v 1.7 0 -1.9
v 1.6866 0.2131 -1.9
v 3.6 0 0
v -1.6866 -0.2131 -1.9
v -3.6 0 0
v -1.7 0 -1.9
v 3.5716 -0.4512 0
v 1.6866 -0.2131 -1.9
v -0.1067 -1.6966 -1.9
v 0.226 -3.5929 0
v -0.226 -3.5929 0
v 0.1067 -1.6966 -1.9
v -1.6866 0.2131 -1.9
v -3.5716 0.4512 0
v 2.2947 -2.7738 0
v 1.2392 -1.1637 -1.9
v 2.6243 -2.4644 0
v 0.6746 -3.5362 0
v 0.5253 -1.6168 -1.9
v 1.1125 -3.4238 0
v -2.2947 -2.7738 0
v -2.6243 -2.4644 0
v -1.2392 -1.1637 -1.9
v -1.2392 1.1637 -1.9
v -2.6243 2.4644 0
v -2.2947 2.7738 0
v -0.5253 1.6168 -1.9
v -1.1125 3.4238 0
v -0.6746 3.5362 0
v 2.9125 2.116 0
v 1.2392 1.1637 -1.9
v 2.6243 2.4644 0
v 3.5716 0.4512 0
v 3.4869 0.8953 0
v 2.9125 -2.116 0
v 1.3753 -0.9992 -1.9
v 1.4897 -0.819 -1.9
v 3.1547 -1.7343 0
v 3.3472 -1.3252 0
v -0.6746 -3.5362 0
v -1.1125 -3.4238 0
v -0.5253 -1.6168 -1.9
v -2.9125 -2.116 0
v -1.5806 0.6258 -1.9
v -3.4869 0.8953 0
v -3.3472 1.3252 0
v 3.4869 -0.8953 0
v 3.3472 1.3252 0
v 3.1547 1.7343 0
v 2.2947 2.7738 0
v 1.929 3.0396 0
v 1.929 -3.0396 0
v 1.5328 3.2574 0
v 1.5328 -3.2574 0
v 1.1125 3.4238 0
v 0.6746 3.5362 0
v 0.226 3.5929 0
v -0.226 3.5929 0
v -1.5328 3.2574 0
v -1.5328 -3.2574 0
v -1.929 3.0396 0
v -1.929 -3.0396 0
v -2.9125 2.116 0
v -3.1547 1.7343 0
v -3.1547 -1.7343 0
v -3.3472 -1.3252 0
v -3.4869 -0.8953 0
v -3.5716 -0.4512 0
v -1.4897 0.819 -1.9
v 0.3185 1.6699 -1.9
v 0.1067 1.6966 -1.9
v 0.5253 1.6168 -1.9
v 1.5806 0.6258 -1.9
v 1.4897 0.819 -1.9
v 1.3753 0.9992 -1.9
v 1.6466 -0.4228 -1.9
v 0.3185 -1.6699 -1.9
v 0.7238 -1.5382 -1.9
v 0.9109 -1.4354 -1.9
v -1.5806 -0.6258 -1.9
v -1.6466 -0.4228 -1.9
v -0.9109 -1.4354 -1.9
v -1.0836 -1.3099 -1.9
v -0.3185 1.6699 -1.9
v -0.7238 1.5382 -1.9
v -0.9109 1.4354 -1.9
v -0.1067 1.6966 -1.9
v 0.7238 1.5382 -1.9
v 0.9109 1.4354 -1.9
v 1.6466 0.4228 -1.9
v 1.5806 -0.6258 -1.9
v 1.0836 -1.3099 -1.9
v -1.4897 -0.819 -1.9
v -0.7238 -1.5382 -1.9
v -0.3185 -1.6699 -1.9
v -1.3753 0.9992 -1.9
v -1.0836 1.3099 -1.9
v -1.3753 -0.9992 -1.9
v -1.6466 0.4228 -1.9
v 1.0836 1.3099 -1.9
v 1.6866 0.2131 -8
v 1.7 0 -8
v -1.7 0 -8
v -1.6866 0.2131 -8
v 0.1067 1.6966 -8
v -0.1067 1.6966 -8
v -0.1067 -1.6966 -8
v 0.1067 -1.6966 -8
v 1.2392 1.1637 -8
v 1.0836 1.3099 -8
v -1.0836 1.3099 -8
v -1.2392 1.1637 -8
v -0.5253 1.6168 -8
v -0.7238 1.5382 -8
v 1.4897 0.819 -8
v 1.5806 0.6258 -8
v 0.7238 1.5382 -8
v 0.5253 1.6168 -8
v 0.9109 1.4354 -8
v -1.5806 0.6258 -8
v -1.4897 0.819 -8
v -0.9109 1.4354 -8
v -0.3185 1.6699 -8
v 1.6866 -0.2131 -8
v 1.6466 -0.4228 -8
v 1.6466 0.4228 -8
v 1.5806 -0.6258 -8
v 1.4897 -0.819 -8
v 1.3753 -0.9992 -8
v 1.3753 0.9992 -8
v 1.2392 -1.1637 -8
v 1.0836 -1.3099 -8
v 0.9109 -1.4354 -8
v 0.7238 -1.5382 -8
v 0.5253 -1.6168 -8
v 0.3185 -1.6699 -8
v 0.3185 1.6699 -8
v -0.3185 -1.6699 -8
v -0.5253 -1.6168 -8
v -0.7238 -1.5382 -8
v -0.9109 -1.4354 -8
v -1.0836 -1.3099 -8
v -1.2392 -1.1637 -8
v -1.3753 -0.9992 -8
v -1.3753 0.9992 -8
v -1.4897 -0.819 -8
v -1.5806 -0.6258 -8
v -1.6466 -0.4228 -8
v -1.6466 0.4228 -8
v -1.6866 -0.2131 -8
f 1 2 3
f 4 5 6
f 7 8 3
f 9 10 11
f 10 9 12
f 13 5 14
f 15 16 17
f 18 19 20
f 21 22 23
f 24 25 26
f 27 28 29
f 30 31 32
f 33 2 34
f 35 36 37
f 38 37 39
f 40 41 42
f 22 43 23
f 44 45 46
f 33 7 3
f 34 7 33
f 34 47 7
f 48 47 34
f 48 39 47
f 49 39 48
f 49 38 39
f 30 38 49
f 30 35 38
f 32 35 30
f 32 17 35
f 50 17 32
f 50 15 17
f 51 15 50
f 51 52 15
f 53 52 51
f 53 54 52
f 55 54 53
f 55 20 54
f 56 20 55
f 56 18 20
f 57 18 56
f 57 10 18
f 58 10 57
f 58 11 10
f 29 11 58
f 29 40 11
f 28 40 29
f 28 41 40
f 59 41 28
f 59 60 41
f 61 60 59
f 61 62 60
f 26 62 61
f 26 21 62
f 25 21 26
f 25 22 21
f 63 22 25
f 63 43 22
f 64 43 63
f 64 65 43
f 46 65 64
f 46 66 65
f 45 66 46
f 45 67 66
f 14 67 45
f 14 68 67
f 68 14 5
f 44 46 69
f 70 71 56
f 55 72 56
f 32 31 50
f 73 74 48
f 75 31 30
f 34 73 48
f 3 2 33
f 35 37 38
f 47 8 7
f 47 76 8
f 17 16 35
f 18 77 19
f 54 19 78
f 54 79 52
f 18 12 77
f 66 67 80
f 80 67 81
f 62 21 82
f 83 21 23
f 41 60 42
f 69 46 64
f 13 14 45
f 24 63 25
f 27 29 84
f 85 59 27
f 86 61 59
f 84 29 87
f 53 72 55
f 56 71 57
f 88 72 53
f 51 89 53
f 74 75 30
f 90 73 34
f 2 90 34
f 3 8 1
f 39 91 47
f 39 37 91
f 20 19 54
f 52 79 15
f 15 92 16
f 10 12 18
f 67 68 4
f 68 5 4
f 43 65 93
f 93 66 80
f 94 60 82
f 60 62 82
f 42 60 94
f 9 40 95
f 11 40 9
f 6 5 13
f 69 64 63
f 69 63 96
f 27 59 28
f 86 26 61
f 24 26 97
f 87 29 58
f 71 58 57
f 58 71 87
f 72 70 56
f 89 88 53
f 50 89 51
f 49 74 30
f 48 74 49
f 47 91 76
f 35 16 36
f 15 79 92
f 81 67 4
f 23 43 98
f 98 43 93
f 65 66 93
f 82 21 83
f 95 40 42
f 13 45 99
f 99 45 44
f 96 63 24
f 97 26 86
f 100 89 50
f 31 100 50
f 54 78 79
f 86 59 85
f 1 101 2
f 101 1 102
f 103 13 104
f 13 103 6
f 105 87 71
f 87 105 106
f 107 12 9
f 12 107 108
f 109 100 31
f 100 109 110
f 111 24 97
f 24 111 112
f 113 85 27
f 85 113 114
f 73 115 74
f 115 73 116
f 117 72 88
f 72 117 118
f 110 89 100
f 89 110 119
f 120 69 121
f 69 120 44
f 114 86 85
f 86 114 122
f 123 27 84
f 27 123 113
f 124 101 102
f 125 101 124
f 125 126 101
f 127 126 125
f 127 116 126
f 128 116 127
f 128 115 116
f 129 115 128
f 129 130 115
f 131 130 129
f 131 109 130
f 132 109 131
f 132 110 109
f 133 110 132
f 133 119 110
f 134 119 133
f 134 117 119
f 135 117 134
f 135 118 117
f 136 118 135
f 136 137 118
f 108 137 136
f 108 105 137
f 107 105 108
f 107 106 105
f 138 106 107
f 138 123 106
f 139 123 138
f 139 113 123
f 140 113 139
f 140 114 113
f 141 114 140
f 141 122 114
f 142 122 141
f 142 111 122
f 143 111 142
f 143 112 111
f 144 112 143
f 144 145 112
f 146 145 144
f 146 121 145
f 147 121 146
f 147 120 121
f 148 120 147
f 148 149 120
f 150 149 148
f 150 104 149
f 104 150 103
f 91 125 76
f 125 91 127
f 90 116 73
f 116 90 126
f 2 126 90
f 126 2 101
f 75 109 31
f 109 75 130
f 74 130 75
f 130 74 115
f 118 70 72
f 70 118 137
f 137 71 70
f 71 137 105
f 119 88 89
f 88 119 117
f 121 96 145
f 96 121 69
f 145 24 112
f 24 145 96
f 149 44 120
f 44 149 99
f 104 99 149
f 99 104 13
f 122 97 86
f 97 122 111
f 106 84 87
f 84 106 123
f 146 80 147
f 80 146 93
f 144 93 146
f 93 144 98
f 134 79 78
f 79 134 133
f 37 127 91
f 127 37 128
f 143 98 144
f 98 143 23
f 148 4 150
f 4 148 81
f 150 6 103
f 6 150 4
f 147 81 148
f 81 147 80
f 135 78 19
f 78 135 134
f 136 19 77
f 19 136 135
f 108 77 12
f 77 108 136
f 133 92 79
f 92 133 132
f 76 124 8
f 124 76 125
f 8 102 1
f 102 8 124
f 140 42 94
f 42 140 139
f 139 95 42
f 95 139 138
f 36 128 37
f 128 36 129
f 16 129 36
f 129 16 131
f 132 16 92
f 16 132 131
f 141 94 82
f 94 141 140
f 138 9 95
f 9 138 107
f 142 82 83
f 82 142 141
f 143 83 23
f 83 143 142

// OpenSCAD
$fn = 50;


difference() {
	union() {
		translate(v = [0, 0, -1.9000000000]) {
			rotate(a = [0, 0, 0]) {
				cylinder(h = 1.9000000000, r1 = 1.7000000000, r2 = 3.6000000000);
			}
		}
		translate(v = [0, 0, -8]) {
			rotate(a = [0, 0, 0]) {
				cylinder(h = 8, r = 1.7000000000);
			}
		}
	}
	union();
}
